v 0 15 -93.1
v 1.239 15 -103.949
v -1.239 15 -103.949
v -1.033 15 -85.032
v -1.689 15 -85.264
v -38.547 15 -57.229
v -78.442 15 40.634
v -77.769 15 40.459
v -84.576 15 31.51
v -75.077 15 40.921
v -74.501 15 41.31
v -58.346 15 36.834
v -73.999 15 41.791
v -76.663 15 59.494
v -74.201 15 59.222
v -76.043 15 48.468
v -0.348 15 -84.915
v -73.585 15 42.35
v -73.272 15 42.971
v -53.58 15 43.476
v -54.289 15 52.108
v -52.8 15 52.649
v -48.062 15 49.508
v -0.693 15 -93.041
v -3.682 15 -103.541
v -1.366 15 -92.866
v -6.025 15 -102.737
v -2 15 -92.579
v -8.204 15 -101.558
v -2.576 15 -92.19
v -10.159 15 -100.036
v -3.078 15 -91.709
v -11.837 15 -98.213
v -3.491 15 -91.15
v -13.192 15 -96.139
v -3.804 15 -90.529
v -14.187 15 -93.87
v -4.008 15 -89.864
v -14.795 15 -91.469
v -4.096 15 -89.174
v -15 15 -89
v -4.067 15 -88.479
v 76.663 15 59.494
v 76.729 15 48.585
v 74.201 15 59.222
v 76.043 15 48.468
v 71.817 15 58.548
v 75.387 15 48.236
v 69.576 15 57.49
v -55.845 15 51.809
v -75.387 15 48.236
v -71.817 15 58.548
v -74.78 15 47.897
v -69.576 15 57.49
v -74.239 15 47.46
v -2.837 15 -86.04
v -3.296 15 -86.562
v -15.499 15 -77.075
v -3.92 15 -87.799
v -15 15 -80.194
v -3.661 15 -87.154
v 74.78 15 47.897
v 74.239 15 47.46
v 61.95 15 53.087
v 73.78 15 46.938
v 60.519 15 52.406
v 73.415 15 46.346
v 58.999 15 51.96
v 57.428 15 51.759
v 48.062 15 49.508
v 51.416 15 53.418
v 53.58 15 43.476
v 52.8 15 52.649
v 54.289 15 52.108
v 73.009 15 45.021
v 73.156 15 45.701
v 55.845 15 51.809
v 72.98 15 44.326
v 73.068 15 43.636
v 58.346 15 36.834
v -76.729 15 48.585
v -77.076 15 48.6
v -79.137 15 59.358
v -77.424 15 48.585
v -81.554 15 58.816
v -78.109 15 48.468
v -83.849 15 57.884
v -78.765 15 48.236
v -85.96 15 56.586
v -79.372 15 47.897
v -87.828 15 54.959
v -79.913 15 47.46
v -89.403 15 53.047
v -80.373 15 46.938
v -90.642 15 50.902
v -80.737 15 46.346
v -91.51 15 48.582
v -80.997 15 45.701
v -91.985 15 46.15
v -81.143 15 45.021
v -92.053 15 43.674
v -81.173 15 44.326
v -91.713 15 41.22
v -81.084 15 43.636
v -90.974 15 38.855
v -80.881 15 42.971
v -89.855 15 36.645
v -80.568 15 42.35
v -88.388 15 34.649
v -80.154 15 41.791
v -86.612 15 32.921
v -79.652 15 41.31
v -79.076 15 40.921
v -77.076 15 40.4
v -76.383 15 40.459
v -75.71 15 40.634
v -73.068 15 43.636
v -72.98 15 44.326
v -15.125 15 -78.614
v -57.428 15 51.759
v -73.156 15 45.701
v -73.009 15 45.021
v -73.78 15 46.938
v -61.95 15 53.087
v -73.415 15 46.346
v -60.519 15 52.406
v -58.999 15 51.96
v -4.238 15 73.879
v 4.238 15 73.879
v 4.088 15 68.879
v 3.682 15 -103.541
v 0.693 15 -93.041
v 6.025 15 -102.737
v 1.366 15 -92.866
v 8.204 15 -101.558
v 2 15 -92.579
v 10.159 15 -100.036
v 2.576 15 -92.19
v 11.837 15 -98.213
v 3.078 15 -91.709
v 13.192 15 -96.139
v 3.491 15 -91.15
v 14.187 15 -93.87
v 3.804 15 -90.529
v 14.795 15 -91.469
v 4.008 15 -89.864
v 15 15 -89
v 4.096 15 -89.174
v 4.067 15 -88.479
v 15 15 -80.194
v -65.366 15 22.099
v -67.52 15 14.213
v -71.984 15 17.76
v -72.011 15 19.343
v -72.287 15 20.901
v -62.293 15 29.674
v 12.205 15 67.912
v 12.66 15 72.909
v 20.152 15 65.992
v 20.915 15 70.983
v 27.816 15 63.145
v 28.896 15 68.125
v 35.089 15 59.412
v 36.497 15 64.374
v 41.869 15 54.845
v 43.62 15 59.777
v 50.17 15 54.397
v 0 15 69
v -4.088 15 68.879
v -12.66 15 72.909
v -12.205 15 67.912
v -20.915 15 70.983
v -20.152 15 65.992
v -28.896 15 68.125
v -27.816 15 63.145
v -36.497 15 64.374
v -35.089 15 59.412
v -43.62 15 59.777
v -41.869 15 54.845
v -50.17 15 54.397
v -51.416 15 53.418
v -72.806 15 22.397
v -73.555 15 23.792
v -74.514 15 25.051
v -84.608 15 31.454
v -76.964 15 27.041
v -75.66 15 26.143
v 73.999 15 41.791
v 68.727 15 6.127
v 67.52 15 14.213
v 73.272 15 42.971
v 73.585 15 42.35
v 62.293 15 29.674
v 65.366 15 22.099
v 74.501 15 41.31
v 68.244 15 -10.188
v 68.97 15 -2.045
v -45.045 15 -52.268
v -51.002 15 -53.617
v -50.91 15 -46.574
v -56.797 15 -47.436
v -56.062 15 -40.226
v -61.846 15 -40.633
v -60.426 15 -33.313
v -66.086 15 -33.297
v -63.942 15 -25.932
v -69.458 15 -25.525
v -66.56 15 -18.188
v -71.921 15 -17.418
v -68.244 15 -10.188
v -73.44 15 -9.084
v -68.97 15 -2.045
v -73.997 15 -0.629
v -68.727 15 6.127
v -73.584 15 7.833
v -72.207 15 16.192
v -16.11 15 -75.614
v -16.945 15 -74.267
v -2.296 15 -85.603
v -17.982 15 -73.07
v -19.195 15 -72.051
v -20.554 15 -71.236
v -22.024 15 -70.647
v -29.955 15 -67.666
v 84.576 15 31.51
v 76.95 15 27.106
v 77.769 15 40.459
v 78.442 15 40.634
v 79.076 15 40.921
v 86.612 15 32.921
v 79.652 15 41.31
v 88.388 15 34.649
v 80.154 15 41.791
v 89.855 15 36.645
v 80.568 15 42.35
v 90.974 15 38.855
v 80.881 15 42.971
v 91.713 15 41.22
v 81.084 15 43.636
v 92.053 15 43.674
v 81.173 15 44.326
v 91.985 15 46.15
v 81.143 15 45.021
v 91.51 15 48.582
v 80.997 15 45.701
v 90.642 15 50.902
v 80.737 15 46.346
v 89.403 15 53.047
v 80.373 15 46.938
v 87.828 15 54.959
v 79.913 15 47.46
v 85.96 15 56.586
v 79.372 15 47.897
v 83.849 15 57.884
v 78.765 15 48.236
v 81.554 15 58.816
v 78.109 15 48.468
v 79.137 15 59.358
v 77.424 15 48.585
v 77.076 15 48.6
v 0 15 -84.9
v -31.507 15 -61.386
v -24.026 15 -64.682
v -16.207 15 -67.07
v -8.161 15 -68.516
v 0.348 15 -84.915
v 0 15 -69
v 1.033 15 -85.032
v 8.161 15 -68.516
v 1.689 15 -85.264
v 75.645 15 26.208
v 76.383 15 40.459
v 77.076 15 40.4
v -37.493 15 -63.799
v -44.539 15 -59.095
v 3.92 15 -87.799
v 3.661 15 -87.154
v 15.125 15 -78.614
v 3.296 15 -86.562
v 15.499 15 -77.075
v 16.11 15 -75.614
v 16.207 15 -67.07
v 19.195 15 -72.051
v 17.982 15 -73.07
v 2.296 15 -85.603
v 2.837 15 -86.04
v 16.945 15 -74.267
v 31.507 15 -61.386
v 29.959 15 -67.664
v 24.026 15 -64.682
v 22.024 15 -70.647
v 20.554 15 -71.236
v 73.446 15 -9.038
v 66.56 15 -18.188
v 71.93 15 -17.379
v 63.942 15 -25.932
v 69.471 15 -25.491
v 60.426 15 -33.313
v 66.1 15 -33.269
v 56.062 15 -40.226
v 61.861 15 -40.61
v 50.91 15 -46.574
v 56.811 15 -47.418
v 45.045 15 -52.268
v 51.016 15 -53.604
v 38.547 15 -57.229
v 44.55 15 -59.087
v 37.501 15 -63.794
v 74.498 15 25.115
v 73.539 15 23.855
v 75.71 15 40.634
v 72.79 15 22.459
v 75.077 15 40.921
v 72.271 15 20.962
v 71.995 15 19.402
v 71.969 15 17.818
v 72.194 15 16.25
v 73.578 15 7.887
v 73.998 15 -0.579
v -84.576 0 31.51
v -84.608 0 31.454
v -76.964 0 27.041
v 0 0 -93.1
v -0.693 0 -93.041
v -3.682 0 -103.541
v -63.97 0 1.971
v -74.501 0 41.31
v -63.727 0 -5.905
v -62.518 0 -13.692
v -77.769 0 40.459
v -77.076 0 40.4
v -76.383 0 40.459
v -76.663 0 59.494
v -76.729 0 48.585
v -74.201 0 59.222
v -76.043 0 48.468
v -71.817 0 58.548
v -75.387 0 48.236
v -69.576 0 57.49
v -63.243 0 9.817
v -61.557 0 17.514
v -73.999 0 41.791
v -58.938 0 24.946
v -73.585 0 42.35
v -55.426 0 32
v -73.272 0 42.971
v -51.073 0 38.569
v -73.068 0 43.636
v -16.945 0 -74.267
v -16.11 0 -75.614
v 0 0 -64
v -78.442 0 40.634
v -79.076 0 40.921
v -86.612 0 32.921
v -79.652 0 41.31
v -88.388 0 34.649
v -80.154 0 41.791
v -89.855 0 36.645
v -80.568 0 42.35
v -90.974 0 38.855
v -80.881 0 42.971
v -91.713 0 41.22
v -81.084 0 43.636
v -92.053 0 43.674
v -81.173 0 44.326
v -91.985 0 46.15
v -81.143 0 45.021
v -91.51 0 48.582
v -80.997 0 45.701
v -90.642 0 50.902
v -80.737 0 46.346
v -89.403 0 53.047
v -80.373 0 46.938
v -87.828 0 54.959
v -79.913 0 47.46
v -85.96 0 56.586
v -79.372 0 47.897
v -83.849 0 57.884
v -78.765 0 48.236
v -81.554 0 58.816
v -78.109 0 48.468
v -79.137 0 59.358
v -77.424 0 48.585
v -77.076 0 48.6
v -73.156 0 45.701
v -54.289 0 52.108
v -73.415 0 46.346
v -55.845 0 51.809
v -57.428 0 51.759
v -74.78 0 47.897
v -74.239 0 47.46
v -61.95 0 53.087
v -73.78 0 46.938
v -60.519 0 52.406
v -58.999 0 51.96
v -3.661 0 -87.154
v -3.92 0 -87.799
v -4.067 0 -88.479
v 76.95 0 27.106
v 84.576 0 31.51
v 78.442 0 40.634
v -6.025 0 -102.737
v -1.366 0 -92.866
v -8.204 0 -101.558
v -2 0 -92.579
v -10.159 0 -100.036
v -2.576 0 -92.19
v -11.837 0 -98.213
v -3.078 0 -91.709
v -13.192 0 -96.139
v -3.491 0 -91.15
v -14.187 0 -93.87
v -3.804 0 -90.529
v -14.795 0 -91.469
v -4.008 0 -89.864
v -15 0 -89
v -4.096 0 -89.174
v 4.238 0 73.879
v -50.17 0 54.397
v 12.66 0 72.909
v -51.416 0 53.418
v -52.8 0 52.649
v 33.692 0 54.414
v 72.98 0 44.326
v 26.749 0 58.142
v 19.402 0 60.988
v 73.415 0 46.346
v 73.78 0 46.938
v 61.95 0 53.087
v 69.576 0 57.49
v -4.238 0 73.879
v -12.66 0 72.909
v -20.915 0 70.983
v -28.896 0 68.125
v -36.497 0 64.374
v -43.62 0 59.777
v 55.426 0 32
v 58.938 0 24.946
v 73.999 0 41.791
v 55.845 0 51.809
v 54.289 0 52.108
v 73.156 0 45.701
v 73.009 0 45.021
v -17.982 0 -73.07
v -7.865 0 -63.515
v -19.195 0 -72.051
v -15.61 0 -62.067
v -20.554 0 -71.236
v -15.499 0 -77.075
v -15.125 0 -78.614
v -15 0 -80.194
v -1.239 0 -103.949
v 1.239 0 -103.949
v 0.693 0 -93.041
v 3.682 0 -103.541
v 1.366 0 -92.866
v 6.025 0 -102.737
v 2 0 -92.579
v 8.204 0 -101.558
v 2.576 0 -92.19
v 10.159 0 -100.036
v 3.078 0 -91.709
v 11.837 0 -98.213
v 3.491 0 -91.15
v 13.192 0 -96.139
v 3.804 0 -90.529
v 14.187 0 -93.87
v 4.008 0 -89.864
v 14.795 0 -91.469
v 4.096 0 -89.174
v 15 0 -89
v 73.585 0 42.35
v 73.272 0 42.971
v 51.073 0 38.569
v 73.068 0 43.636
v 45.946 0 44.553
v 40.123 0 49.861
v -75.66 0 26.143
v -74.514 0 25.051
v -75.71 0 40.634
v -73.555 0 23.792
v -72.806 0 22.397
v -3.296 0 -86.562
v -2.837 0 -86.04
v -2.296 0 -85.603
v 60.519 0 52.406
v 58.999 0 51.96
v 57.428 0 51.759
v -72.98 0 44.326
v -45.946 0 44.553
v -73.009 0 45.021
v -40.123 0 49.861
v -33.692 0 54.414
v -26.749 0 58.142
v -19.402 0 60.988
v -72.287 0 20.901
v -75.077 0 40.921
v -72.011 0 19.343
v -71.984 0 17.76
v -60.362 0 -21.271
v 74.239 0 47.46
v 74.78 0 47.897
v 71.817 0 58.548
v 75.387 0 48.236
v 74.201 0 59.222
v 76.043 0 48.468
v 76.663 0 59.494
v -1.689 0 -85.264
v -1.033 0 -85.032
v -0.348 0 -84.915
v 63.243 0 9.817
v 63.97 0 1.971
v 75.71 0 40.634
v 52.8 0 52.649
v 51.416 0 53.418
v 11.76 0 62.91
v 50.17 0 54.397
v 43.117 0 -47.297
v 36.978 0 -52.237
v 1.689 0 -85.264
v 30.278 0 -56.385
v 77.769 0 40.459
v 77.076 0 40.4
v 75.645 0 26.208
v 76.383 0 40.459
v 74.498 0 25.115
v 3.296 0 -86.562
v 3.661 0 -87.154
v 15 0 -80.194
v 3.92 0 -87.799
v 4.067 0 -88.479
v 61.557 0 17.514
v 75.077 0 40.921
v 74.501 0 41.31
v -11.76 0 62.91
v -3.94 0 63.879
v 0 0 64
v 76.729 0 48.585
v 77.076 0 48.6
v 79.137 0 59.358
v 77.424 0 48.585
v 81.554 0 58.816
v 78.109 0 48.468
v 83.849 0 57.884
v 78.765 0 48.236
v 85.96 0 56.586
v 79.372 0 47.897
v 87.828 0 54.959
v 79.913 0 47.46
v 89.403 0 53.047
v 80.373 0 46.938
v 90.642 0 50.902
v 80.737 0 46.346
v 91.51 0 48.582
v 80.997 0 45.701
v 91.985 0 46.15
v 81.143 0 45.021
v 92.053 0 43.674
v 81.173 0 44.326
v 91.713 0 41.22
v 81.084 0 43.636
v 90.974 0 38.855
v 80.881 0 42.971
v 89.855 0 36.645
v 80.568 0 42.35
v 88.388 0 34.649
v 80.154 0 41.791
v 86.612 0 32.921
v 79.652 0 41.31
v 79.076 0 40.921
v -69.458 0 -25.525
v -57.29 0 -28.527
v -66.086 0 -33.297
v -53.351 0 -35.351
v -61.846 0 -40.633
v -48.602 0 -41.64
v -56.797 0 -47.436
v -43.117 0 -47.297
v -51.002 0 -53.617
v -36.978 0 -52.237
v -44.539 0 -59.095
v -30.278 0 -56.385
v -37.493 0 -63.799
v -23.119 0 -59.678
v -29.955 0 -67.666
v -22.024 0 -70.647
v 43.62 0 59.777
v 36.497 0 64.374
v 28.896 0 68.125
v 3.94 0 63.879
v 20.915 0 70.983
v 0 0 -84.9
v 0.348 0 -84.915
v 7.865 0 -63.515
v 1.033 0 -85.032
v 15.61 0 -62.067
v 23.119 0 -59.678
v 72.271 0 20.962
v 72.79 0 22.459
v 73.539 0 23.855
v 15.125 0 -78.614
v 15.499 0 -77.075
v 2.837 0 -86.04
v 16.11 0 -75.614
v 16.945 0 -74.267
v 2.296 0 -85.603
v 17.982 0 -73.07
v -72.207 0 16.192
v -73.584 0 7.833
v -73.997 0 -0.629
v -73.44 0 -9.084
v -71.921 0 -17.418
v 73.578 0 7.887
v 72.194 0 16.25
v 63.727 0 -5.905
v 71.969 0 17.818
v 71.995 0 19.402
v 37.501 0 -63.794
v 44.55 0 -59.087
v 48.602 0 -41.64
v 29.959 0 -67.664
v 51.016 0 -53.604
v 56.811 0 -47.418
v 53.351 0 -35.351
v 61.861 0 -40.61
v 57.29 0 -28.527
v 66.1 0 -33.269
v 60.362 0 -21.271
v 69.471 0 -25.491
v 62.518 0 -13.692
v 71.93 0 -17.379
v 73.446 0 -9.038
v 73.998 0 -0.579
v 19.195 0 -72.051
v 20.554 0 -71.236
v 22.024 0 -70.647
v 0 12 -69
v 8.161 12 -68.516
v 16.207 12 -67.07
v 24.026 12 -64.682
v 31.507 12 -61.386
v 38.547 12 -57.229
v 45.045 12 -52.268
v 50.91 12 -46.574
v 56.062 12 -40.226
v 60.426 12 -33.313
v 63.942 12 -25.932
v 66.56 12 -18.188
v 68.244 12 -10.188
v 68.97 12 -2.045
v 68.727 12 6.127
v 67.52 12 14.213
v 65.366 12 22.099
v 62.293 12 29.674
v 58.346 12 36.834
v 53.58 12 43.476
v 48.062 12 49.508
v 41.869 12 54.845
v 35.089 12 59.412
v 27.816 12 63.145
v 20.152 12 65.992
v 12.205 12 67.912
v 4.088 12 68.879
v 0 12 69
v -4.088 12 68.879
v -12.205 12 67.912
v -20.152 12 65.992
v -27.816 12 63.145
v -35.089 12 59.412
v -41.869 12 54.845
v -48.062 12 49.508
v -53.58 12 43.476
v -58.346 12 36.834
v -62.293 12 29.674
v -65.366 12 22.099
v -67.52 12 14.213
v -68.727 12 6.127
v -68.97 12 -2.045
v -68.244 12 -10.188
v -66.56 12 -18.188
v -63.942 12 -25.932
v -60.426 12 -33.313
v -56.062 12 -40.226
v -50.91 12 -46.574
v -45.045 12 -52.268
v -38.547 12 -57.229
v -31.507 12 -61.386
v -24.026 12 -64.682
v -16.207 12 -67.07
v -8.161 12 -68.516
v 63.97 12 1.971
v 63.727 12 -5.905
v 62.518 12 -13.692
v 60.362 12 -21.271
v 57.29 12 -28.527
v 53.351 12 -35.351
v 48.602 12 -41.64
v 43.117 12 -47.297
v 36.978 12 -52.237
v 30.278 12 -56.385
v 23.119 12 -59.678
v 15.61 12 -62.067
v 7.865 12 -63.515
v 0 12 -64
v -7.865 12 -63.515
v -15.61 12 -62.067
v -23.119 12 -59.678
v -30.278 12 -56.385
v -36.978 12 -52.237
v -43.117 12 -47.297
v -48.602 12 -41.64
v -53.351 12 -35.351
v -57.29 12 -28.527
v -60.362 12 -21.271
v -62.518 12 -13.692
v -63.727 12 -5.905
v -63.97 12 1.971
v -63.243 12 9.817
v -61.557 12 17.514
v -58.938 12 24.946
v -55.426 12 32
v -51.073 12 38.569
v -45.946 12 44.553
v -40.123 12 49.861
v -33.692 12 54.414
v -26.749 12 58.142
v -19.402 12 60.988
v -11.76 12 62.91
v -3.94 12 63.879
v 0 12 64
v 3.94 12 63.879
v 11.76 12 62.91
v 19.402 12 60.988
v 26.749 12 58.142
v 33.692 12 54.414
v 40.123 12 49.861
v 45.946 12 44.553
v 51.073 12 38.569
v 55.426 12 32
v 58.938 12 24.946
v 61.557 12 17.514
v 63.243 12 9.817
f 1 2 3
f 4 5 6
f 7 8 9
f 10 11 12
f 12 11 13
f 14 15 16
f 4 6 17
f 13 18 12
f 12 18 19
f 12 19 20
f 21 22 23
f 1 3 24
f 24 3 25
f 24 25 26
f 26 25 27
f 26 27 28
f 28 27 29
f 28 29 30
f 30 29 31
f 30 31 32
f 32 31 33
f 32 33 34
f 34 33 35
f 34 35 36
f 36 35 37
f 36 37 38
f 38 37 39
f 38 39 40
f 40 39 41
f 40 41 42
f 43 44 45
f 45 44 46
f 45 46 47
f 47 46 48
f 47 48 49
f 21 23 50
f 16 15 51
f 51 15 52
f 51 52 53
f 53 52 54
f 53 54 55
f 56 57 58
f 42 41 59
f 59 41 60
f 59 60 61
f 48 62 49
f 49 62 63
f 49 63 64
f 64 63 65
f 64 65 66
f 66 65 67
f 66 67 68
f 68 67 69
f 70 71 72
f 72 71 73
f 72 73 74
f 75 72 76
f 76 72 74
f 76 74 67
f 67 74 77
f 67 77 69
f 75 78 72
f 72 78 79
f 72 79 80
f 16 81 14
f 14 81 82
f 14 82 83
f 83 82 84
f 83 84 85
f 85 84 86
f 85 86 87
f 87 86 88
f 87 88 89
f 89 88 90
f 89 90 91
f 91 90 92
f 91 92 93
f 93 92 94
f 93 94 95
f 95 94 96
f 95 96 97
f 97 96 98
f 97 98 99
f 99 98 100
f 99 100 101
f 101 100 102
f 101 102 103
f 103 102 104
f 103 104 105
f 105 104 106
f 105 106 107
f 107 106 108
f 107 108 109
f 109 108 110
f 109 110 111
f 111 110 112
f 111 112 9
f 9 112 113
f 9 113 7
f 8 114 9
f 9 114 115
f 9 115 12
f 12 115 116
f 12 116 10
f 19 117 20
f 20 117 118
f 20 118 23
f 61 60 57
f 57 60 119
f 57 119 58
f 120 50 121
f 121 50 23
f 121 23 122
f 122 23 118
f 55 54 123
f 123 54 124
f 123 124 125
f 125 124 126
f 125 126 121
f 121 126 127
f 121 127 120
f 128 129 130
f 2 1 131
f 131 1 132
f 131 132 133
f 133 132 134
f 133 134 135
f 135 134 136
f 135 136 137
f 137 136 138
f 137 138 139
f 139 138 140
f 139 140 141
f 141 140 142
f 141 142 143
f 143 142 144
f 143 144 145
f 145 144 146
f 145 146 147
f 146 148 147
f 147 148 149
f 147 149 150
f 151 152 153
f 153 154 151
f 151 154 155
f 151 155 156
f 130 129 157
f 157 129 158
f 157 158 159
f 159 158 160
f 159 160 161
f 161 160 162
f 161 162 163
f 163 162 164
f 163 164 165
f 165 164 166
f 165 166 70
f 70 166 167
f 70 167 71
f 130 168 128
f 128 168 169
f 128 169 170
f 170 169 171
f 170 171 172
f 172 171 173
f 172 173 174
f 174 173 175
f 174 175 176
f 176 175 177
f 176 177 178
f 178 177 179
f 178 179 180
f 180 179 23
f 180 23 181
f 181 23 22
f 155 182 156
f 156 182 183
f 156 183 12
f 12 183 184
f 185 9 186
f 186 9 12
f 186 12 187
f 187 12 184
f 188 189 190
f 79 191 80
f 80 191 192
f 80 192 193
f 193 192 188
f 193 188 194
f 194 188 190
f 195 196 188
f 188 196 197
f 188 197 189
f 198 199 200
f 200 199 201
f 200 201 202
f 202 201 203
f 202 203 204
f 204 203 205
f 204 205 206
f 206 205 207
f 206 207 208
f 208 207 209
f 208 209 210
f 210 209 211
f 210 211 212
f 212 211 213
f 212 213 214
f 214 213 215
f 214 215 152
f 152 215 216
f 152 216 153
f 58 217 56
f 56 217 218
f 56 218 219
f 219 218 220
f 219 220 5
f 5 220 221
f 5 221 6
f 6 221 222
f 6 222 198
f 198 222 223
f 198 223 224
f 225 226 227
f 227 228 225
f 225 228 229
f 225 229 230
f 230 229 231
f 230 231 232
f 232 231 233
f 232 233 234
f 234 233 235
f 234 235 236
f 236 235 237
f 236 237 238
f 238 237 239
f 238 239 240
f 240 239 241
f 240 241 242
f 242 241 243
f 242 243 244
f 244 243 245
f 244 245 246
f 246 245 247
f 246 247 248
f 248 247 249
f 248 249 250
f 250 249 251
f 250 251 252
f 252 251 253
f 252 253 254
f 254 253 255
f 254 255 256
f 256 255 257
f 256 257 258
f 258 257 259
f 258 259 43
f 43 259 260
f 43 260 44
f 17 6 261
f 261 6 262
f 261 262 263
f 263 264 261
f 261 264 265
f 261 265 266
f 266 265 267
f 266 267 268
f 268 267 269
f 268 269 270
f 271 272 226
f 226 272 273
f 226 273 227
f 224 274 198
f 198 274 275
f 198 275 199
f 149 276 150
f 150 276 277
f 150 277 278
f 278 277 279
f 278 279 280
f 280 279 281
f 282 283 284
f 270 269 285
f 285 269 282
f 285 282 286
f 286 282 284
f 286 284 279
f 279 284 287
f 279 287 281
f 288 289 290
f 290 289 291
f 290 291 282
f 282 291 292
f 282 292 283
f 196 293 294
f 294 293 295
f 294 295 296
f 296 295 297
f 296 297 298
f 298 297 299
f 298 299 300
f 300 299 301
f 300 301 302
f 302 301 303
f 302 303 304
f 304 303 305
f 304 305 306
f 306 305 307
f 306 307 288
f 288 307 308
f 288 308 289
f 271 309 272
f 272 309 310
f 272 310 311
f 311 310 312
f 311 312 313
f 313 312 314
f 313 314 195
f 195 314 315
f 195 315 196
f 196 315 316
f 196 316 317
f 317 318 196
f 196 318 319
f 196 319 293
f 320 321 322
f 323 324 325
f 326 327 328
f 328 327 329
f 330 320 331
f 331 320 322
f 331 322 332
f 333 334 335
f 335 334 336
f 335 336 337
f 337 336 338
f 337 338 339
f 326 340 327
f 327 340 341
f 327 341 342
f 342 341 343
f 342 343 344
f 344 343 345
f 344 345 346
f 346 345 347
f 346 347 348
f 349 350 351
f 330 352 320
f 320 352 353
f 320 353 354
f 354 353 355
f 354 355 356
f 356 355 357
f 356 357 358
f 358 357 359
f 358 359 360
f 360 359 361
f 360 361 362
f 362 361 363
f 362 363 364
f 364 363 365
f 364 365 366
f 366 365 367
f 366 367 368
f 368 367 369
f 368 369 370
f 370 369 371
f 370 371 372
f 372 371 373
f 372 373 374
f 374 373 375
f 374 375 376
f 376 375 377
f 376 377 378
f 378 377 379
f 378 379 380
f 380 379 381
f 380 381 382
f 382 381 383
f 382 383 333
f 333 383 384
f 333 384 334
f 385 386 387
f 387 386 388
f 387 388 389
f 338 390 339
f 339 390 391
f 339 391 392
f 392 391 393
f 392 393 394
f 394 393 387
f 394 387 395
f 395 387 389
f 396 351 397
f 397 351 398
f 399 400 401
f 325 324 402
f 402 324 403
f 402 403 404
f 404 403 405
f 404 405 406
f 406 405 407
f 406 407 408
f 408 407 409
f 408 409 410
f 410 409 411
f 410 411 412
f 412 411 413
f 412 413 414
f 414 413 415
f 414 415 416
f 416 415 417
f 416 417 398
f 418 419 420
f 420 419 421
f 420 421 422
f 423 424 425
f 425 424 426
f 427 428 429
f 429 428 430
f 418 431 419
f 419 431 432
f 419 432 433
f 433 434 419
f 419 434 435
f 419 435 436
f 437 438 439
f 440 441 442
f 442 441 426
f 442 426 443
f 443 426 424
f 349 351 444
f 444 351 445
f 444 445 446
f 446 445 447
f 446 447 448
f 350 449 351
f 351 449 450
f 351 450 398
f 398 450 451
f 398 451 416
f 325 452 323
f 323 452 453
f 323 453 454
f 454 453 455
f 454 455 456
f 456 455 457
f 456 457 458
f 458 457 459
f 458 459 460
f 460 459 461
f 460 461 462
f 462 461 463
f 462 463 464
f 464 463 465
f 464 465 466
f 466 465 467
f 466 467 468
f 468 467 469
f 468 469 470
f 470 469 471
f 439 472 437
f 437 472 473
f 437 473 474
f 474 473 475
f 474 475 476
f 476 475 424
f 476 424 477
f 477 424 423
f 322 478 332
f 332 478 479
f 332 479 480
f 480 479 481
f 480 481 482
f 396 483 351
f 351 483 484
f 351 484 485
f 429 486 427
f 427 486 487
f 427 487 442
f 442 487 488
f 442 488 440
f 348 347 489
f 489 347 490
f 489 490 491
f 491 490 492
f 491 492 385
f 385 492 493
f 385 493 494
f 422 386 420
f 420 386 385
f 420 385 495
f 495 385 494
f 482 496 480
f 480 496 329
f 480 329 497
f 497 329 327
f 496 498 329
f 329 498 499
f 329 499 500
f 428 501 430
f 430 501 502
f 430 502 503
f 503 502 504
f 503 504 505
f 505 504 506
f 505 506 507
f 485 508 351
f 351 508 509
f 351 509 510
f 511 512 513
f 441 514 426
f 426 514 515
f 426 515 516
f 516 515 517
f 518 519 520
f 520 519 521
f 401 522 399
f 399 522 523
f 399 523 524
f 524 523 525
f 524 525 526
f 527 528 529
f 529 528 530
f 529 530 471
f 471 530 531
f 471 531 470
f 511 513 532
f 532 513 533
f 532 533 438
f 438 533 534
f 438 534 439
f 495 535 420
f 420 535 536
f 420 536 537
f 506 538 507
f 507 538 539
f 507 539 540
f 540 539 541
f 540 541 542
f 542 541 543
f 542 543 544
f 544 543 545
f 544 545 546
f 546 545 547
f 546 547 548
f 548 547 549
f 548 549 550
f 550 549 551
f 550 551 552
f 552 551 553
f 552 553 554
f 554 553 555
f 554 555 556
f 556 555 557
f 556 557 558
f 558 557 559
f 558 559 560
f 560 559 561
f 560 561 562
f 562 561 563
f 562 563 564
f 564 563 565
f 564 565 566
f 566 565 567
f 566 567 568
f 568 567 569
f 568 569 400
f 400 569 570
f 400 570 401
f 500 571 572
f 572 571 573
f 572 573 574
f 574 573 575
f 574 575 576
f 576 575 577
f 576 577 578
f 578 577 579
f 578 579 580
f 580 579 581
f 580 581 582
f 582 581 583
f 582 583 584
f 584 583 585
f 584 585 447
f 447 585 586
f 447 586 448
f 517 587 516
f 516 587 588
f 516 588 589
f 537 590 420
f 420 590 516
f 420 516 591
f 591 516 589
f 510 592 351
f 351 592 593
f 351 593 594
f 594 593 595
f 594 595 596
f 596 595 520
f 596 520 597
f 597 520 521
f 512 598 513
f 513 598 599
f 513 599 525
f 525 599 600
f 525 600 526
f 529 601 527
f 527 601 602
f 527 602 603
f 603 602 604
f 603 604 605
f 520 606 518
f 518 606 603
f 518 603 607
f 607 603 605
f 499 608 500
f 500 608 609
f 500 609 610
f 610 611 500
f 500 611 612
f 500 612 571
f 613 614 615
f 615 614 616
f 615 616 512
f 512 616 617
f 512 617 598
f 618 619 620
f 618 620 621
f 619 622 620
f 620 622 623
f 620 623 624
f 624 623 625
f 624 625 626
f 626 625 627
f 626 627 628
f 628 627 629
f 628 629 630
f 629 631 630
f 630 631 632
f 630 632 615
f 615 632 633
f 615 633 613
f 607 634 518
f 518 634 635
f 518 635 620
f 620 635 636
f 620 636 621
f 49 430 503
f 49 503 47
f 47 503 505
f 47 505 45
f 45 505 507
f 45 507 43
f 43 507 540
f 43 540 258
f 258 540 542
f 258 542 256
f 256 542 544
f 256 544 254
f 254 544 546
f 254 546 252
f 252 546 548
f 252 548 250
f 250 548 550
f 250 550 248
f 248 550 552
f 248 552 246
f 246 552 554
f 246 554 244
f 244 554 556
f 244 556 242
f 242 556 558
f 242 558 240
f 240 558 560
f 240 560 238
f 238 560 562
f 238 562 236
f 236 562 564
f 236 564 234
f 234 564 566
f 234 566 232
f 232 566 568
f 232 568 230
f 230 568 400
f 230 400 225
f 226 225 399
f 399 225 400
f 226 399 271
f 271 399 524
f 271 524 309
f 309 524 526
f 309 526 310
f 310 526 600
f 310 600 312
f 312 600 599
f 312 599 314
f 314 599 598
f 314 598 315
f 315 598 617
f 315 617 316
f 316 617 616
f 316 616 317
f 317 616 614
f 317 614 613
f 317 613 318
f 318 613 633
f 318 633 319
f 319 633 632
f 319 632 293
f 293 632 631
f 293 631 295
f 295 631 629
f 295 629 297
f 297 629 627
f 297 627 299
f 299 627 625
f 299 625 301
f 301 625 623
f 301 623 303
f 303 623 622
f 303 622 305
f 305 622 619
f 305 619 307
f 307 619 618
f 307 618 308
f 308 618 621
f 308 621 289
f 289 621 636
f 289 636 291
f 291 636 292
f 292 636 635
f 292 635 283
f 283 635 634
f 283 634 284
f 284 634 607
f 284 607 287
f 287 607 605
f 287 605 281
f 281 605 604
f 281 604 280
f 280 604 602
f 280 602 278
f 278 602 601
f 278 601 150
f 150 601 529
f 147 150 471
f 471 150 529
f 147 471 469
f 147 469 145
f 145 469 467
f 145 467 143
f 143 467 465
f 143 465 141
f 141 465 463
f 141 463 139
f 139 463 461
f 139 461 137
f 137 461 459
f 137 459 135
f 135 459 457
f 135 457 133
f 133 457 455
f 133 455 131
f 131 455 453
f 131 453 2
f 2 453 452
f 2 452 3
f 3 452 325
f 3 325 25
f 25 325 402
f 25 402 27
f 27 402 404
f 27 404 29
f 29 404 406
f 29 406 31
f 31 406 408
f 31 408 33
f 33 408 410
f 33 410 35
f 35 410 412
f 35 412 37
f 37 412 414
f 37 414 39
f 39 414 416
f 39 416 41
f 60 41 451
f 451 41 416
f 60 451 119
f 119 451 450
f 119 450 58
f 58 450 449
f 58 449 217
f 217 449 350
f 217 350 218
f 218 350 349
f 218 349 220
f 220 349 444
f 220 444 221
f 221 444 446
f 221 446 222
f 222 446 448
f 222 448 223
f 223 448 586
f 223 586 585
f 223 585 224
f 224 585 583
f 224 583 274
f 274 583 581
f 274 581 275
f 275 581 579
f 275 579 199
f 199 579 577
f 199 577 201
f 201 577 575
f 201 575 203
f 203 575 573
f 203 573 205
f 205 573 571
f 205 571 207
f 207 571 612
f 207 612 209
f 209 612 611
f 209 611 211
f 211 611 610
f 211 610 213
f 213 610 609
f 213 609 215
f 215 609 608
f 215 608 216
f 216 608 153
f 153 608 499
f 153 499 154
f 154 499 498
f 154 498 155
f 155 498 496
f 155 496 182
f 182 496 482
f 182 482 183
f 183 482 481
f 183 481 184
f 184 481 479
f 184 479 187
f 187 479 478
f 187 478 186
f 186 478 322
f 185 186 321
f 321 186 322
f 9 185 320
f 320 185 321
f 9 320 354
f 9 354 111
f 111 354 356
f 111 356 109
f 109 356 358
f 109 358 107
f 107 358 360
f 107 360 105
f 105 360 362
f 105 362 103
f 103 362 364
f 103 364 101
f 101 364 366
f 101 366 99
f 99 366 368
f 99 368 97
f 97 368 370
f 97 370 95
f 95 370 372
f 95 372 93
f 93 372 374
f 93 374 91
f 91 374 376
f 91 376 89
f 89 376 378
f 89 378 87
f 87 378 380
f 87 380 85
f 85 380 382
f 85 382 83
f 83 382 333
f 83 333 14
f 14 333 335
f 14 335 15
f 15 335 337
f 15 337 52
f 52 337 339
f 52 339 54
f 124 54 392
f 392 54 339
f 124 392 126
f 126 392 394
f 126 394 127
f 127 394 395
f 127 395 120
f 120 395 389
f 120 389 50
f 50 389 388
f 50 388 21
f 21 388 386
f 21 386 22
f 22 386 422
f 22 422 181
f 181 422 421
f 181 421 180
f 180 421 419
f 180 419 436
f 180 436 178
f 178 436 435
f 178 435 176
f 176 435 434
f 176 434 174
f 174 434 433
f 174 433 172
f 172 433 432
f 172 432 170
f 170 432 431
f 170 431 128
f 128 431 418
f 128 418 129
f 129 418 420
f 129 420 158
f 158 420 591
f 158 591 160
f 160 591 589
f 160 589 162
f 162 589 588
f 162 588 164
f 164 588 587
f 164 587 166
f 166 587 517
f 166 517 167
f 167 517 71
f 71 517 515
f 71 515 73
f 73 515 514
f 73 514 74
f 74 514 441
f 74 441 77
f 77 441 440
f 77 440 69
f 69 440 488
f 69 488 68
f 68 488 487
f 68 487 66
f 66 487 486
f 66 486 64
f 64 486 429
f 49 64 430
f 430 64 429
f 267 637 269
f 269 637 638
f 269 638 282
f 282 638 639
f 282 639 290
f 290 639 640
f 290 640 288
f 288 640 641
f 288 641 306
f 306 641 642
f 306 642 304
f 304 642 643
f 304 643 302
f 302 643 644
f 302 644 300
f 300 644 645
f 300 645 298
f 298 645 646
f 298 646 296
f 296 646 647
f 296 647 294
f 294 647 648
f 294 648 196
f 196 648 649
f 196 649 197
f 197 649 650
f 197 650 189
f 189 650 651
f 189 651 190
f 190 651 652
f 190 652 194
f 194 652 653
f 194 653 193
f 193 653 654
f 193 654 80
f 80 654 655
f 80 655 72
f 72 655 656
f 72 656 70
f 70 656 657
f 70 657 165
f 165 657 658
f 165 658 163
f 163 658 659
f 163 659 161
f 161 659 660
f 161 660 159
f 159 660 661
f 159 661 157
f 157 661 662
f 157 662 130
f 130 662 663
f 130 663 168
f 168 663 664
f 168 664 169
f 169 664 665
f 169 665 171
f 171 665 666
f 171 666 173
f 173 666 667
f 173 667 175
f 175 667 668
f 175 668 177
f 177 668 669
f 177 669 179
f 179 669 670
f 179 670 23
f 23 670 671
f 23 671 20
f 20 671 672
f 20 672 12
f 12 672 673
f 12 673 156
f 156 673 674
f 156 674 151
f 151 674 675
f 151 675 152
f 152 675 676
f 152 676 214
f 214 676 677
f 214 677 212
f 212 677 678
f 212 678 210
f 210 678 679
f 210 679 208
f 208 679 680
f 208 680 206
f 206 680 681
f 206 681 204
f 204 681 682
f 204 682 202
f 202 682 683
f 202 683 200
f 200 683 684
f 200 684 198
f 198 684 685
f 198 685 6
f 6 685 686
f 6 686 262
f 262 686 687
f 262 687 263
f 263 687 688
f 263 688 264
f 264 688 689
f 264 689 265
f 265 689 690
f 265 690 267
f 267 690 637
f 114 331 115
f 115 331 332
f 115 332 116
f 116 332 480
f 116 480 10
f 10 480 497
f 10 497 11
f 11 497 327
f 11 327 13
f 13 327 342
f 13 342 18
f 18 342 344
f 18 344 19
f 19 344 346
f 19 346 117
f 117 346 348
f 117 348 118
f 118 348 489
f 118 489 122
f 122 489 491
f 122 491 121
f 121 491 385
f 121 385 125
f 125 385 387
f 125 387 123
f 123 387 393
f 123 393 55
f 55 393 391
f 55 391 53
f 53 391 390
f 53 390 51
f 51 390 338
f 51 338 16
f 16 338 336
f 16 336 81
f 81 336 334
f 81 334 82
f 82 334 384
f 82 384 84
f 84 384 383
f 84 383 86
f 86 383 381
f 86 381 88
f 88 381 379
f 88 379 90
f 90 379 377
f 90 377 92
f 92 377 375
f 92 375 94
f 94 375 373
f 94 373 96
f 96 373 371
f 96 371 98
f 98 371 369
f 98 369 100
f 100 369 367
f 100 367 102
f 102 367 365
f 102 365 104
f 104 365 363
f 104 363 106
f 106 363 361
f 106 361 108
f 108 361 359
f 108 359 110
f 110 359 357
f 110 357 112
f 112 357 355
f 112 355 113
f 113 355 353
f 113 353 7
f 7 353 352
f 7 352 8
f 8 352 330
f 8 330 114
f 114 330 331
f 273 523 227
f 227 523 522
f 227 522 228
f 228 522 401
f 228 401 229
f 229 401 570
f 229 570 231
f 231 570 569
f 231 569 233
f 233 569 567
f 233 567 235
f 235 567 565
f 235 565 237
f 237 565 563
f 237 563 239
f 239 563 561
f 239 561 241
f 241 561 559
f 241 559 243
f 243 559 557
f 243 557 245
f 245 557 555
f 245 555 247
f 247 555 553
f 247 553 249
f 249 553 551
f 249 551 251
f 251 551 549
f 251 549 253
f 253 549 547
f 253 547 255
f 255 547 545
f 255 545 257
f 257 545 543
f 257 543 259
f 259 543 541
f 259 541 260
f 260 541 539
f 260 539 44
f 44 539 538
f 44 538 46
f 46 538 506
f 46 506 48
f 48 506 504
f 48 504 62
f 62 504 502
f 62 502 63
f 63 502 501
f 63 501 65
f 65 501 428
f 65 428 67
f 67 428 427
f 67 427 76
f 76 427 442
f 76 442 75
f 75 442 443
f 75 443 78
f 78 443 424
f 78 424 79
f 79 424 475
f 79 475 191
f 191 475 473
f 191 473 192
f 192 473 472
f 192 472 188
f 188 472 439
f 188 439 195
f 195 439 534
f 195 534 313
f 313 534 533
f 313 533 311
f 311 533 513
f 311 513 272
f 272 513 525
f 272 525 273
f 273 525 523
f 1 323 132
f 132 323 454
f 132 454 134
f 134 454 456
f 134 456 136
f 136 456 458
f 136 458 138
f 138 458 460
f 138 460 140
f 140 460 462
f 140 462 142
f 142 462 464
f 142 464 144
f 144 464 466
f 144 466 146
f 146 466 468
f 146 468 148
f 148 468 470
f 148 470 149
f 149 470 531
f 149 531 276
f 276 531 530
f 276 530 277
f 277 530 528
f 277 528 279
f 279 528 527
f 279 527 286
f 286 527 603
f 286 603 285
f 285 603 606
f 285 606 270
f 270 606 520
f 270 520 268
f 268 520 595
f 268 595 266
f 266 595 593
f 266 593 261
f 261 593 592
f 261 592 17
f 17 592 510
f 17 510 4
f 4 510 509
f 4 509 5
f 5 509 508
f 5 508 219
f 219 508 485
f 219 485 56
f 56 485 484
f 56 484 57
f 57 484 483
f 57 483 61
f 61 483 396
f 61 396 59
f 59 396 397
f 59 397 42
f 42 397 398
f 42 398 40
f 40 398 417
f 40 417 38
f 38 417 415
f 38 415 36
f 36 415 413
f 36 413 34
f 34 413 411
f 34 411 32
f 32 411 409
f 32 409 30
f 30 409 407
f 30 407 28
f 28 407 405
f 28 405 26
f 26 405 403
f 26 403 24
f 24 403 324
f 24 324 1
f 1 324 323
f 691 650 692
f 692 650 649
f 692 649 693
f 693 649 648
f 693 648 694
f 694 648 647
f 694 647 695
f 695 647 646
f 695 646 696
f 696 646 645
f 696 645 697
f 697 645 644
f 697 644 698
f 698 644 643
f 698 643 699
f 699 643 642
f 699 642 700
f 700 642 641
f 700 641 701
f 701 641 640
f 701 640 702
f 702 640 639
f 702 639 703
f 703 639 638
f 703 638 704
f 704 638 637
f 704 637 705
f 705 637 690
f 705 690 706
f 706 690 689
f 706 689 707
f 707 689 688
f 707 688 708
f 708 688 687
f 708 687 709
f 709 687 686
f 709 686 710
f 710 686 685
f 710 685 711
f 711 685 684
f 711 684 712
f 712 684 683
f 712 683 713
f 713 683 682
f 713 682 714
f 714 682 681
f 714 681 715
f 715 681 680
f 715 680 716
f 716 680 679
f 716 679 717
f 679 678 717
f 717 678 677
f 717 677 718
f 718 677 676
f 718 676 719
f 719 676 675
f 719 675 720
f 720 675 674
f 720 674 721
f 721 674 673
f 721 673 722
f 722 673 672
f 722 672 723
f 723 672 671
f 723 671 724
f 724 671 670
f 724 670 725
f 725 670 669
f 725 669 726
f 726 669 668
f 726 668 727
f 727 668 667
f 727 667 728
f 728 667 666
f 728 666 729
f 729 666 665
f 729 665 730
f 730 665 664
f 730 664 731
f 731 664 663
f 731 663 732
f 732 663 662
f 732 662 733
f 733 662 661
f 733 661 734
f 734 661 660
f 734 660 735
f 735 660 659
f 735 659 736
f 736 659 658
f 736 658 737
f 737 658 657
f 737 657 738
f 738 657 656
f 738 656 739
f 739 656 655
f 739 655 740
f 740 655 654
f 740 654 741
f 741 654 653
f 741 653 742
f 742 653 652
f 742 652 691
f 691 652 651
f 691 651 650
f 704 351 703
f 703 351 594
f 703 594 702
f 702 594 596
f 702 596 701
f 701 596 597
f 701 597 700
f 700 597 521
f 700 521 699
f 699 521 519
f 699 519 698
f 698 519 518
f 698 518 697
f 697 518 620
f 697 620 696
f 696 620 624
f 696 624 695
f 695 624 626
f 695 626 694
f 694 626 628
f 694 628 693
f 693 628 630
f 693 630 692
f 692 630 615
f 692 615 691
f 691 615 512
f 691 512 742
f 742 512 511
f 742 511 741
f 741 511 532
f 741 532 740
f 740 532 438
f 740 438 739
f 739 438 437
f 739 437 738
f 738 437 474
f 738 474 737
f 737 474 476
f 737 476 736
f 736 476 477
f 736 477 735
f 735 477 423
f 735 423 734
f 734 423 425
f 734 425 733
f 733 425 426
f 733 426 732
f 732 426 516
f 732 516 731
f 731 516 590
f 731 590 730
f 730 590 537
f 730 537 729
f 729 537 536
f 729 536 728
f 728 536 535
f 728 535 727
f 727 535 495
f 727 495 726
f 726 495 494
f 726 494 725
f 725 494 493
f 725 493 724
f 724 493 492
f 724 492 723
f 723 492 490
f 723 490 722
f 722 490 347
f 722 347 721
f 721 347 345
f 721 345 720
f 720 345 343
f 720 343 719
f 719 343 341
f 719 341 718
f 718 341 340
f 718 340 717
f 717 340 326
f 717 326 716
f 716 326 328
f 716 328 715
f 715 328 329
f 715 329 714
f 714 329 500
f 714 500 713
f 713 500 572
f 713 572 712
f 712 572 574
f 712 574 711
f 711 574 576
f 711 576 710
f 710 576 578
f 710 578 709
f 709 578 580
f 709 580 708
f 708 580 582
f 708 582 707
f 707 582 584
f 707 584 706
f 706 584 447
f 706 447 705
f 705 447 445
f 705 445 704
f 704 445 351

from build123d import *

# Parameters (mm, degrees)
SKETCH1_R           = 69
SKETCH1_R_2         = 4.1
BOSS_EXTRUDE1_DEPTH = 15
SKETCH2_R           = 69
SKETCH2_R_2         = 64
BOSS_EXTRUDE5_DEPTH = 12


with BuildPart() as part:
    # Sketch1 → Boss-Extrude1 (new body)
    with BuildSketch(Plane(origin=(0, 0, 0), x_dir=(1, 0, 0), z_dir=(0, 1, 0))):
        with BuildLine():
            Line((84.576260937, -31.509618943), (76.949622029, -27.106376917))
            ThreePointArc((76.949622029, -27.106376917), (72.790004977, -22.458779787), (72.193714645, -16.25015587))
            ThreePointArc((72.193714645, -16.25015587), (64.08587988, 37), (22.023809524, 70.646668811))
            ThreePointArc((22.023809524, 70.646668811), (16.945128655, 74.267383345), (15, 80.193515947))
            Line((15, 80.193515947), (15, 89))
            ThreePointArc((15, 89), (0, 104), (-15, 89))
            Line((-15, 89), (-15, 80.193515947))
            ThreePointArc((-15, 80.193515947), (-16.945128655, 74.267383345), (-22.023809524, 70.646668811))
            ThreePointArc((-22.023809524, 70.646668811), (-64.071073413, 37.025633711), (-72.206692839, -16.192390475))
            ThreePointArc((-72.206692839, -16.192390475), (-72.806342922, -22.396872115), (-76.964354033, -27.040805388))
            Line((-76.964354033, -27.040805388), (-84.608337243, -31.454061152))
            Line((-84.608337243, -31.454061152), (-84.576260937, -31.509618943))
            ThreePointArc((-84.576260937, -31.509618943), (-90.066641994, -52), (-69.576260937, -57.490381057))
            Line((-69.576260937, -57.490381057), (-61.949622029, -53.08713903))
            ThreePointArc((-61.949622029, -53.08713903), (-55.844876322, -51.808603558), (-50.169905121, -54.396512941))
            ThreePointArc((-50.169905121, -54.396512941), (0, -74), (50.169905121, -54.396512941))
            ThreePointArc((50.169905121, -54.396512941), (55.844876322, -51.808603558), (61.949622029, -53.08713903))
            Line((61.949622029, -53.08713903), (69.576260937, -57.490381057))
            ThreePointArc((69.576260937, -57.490381057), (90.066641994, -52), (84.576260937, -31.509618943))
        make_face()
        Circle(SKETCH1_R, mode=Mode.SUBTRACT)
        with Locations((-77.076260937, -44.5)):
            Circle(SKETCH1_R_2, mode=Mode.SUBTRACT)
        with Locations((77.076260937, -44.5)):
            Circle(SKETCH1_R_2, mode=Mode.SUBTRACT)
        with Locations((0, 89)):
            Circle(SKETCH1_R_2, mode=Mode.SUBTRACT)
    extrude(amount=BOSS_EXTRUDE1_DEPTH)

    # Sketch2 → Boss-Extrude5 (add)
    with BuildSketch(Plane(origin=(0, 0, 0), x_dir=(1, 0, 0), z_dir=(0, 1, 0))):
        Circle(SKETCH2_R)
        Circle(SKETCH2_R_2, mode=Mode.SUBTRACT)
    extrude(amount=BOSS_EXTRUDE5_DEPTH)


solid = part.part
